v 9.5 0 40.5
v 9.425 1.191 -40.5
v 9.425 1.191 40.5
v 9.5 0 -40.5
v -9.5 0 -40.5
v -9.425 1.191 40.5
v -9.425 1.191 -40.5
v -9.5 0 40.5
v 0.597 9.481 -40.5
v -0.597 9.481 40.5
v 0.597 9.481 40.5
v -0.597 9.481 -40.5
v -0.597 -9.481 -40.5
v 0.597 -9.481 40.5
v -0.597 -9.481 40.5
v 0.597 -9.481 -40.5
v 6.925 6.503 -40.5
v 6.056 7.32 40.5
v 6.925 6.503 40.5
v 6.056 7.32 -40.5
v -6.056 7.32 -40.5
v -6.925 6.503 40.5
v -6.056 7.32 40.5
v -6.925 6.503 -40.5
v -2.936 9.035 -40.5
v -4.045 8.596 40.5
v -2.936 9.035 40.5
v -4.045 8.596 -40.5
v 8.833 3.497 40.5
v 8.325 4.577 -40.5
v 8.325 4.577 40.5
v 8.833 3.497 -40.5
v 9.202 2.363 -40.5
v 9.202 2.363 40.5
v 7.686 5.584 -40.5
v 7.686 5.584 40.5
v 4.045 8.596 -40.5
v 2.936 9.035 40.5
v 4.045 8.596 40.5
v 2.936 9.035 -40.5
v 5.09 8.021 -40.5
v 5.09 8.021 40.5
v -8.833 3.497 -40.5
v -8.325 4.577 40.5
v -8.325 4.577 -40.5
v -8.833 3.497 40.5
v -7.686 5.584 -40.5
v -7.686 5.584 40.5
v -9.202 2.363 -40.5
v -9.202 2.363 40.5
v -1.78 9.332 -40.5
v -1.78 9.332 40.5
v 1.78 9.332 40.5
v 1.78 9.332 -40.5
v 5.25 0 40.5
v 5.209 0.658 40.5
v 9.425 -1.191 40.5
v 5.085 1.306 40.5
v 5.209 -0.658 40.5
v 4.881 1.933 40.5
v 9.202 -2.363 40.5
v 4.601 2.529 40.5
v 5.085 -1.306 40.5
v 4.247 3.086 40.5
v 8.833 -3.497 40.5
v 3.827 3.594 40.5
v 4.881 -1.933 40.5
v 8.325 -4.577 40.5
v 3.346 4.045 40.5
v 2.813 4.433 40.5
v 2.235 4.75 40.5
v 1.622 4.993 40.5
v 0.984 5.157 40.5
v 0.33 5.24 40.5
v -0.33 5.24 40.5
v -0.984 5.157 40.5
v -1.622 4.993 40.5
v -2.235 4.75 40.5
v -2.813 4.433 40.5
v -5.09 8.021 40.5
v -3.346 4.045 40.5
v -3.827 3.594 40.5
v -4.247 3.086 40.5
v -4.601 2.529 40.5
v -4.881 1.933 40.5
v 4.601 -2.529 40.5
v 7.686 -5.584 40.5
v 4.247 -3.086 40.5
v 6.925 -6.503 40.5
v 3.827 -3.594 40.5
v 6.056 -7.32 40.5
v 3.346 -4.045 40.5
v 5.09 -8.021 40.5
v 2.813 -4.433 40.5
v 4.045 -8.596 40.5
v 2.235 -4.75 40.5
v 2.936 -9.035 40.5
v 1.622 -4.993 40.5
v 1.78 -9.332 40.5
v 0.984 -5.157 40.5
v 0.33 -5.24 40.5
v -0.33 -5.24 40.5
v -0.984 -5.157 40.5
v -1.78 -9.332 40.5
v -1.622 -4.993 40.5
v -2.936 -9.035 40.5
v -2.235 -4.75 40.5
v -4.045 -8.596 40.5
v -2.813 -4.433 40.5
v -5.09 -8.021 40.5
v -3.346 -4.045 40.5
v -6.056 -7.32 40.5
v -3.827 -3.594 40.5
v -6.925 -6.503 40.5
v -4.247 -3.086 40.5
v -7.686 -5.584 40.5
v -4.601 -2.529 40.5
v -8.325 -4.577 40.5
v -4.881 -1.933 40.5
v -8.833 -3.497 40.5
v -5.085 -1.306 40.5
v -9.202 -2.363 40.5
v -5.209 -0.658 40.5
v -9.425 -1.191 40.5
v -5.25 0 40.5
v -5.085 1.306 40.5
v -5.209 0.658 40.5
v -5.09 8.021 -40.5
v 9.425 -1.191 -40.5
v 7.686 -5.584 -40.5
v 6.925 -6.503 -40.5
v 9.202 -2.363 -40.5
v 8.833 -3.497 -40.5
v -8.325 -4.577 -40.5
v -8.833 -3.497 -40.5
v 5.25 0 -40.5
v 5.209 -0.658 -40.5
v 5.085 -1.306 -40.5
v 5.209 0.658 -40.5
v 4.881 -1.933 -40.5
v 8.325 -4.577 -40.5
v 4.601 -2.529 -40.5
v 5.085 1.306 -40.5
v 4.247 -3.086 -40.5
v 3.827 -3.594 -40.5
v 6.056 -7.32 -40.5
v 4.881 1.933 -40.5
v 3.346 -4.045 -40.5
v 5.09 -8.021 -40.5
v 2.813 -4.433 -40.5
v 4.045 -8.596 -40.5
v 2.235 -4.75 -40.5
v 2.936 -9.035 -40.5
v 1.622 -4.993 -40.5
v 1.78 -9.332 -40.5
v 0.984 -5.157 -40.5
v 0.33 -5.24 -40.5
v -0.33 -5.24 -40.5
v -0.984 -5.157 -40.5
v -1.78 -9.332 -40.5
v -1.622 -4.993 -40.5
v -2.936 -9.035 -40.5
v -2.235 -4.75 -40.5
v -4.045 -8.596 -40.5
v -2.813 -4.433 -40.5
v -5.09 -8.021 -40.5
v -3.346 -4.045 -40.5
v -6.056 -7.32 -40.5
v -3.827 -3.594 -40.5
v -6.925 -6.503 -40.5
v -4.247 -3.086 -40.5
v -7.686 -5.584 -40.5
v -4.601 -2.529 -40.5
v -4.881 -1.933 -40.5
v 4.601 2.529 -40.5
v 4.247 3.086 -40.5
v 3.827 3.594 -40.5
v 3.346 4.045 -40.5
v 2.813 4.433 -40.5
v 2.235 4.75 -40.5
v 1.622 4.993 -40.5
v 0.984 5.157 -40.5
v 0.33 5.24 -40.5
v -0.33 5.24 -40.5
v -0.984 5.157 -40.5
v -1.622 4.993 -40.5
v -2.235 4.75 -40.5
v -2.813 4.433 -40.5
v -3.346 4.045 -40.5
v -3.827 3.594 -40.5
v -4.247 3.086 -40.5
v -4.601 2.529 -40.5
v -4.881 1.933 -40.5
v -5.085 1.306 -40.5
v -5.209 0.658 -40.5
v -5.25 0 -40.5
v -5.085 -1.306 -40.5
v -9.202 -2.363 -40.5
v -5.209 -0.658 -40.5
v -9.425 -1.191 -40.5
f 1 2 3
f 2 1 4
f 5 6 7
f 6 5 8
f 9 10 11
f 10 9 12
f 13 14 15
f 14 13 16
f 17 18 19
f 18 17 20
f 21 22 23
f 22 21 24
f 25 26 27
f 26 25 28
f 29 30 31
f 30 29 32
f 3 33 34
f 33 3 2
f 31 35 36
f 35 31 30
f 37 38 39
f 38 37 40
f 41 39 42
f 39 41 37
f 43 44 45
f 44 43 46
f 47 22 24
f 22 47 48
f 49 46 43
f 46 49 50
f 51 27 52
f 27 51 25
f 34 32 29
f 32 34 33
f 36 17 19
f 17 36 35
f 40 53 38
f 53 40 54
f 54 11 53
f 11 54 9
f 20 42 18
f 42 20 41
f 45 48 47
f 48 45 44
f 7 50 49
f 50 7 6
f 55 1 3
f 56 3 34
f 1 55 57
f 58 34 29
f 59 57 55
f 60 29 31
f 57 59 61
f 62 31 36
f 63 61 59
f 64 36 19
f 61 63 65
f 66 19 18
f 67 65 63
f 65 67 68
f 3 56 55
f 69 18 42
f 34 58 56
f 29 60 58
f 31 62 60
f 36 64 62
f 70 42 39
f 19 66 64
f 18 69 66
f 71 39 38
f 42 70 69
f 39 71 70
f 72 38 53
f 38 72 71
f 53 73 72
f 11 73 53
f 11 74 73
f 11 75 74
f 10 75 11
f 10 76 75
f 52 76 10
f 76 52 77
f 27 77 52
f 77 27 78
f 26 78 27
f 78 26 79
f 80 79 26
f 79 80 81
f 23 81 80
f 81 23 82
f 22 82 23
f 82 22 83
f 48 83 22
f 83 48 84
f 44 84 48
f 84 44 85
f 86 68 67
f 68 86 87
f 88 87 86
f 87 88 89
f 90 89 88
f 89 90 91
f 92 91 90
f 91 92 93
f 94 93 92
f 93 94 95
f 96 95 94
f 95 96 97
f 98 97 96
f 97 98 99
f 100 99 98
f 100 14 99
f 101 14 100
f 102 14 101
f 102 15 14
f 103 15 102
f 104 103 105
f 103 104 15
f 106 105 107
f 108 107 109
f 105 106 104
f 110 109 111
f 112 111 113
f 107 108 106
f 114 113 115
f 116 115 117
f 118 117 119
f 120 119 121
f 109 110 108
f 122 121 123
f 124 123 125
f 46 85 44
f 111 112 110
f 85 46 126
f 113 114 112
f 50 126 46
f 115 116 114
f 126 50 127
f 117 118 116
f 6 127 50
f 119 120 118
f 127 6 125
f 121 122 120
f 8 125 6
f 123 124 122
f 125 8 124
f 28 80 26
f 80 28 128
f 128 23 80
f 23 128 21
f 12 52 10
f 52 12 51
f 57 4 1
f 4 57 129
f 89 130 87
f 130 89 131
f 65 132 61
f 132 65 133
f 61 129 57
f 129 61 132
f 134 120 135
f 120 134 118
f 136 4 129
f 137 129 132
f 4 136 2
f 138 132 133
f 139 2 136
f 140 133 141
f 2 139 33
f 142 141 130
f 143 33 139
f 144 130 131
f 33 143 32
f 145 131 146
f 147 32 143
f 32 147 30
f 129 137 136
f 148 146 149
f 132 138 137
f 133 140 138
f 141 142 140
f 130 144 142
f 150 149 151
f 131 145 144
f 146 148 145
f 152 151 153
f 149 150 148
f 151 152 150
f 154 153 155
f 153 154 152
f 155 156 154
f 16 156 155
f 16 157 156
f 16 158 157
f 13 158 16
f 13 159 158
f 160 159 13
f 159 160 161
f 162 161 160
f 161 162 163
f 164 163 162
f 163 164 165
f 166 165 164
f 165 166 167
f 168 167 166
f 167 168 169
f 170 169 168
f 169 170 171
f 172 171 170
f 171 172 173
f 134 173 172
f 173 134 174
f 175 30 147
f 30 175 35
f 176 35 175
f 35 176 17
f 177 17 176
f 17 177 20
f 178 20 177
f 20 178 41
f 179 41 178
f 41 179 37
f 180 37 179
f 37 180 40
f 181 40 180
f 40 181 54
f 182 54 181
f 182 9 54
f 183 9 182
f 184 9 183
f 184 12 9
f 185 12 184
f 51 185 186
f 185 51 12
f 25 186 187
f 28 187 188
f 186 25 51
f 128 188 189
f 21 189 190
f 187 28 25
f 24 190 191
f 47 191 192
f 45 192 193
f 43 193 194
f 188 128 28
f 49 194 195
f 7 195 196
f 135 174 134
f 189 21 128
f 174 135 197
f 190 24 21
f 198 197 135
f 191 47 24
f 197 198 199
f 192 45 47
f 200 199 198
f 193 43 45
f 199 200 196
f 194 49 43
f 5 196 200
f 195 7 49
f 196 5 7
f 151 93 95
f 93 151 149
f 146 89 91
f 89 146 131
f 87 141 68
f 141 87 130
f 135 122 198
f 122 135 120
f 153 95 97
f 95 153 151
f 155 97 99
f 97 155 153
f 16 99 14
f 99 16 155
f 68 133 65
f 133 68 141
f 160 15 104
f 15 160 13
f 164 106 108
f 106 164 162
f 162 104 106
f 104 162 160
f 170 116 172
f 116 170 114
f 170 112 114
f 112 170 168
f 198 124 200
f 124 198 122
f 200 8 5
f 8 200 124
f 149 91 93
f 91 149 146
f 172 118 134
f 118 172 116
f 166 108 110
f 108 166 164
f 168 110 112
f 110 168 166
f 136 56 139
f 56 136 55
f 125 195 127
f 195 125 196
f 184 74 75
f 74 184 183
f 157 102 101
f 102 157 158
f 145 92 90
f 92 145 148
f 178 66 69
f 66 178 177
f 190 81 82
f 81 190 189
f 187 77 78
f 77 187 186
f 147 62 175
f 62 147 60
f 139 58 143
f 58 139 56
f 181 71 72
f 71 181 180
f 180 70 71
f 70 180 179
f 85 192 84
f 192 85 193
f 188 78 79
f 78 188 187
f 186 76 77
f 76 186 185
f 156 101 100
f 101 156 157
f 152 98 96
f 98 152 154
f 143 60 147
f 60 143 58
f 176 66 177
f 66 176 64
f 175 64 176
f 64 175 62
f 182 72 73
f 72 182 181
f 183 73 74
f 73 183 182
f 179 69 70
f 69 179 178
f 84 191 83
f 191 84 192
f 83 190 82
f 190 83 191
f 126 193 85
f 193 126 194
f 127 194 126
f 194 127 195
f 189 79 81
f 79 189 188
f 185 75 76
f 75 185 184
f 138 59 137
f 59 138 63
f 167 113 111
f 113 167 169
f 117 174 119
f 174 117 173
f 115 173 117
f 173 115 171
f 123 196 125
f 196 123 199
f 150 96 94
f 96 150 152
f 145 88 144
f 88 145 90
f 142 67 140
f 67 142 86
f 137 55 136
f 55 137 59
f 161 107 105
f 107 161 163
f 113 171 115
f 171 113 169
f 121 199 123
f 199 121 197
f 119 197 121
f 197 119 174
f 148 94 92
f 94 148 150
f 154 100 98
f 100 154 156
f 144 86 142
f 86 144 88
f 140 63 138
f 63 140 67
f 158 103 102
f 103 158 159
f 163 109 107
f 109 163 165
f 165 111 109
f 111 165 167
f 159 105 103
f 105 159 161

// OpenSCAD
$fn = 50;


difference() {
	union() {
		translate(v = [0, 0, -40.5000000000]) {
			cylinder(h = 81, r = 9.5000000000);
		}
	}
	union() {
		translate(v = [0, 0, -100.0000000000]) {
			cylinder(h = 200, r = 5.2500000000);
		}
	}
}
